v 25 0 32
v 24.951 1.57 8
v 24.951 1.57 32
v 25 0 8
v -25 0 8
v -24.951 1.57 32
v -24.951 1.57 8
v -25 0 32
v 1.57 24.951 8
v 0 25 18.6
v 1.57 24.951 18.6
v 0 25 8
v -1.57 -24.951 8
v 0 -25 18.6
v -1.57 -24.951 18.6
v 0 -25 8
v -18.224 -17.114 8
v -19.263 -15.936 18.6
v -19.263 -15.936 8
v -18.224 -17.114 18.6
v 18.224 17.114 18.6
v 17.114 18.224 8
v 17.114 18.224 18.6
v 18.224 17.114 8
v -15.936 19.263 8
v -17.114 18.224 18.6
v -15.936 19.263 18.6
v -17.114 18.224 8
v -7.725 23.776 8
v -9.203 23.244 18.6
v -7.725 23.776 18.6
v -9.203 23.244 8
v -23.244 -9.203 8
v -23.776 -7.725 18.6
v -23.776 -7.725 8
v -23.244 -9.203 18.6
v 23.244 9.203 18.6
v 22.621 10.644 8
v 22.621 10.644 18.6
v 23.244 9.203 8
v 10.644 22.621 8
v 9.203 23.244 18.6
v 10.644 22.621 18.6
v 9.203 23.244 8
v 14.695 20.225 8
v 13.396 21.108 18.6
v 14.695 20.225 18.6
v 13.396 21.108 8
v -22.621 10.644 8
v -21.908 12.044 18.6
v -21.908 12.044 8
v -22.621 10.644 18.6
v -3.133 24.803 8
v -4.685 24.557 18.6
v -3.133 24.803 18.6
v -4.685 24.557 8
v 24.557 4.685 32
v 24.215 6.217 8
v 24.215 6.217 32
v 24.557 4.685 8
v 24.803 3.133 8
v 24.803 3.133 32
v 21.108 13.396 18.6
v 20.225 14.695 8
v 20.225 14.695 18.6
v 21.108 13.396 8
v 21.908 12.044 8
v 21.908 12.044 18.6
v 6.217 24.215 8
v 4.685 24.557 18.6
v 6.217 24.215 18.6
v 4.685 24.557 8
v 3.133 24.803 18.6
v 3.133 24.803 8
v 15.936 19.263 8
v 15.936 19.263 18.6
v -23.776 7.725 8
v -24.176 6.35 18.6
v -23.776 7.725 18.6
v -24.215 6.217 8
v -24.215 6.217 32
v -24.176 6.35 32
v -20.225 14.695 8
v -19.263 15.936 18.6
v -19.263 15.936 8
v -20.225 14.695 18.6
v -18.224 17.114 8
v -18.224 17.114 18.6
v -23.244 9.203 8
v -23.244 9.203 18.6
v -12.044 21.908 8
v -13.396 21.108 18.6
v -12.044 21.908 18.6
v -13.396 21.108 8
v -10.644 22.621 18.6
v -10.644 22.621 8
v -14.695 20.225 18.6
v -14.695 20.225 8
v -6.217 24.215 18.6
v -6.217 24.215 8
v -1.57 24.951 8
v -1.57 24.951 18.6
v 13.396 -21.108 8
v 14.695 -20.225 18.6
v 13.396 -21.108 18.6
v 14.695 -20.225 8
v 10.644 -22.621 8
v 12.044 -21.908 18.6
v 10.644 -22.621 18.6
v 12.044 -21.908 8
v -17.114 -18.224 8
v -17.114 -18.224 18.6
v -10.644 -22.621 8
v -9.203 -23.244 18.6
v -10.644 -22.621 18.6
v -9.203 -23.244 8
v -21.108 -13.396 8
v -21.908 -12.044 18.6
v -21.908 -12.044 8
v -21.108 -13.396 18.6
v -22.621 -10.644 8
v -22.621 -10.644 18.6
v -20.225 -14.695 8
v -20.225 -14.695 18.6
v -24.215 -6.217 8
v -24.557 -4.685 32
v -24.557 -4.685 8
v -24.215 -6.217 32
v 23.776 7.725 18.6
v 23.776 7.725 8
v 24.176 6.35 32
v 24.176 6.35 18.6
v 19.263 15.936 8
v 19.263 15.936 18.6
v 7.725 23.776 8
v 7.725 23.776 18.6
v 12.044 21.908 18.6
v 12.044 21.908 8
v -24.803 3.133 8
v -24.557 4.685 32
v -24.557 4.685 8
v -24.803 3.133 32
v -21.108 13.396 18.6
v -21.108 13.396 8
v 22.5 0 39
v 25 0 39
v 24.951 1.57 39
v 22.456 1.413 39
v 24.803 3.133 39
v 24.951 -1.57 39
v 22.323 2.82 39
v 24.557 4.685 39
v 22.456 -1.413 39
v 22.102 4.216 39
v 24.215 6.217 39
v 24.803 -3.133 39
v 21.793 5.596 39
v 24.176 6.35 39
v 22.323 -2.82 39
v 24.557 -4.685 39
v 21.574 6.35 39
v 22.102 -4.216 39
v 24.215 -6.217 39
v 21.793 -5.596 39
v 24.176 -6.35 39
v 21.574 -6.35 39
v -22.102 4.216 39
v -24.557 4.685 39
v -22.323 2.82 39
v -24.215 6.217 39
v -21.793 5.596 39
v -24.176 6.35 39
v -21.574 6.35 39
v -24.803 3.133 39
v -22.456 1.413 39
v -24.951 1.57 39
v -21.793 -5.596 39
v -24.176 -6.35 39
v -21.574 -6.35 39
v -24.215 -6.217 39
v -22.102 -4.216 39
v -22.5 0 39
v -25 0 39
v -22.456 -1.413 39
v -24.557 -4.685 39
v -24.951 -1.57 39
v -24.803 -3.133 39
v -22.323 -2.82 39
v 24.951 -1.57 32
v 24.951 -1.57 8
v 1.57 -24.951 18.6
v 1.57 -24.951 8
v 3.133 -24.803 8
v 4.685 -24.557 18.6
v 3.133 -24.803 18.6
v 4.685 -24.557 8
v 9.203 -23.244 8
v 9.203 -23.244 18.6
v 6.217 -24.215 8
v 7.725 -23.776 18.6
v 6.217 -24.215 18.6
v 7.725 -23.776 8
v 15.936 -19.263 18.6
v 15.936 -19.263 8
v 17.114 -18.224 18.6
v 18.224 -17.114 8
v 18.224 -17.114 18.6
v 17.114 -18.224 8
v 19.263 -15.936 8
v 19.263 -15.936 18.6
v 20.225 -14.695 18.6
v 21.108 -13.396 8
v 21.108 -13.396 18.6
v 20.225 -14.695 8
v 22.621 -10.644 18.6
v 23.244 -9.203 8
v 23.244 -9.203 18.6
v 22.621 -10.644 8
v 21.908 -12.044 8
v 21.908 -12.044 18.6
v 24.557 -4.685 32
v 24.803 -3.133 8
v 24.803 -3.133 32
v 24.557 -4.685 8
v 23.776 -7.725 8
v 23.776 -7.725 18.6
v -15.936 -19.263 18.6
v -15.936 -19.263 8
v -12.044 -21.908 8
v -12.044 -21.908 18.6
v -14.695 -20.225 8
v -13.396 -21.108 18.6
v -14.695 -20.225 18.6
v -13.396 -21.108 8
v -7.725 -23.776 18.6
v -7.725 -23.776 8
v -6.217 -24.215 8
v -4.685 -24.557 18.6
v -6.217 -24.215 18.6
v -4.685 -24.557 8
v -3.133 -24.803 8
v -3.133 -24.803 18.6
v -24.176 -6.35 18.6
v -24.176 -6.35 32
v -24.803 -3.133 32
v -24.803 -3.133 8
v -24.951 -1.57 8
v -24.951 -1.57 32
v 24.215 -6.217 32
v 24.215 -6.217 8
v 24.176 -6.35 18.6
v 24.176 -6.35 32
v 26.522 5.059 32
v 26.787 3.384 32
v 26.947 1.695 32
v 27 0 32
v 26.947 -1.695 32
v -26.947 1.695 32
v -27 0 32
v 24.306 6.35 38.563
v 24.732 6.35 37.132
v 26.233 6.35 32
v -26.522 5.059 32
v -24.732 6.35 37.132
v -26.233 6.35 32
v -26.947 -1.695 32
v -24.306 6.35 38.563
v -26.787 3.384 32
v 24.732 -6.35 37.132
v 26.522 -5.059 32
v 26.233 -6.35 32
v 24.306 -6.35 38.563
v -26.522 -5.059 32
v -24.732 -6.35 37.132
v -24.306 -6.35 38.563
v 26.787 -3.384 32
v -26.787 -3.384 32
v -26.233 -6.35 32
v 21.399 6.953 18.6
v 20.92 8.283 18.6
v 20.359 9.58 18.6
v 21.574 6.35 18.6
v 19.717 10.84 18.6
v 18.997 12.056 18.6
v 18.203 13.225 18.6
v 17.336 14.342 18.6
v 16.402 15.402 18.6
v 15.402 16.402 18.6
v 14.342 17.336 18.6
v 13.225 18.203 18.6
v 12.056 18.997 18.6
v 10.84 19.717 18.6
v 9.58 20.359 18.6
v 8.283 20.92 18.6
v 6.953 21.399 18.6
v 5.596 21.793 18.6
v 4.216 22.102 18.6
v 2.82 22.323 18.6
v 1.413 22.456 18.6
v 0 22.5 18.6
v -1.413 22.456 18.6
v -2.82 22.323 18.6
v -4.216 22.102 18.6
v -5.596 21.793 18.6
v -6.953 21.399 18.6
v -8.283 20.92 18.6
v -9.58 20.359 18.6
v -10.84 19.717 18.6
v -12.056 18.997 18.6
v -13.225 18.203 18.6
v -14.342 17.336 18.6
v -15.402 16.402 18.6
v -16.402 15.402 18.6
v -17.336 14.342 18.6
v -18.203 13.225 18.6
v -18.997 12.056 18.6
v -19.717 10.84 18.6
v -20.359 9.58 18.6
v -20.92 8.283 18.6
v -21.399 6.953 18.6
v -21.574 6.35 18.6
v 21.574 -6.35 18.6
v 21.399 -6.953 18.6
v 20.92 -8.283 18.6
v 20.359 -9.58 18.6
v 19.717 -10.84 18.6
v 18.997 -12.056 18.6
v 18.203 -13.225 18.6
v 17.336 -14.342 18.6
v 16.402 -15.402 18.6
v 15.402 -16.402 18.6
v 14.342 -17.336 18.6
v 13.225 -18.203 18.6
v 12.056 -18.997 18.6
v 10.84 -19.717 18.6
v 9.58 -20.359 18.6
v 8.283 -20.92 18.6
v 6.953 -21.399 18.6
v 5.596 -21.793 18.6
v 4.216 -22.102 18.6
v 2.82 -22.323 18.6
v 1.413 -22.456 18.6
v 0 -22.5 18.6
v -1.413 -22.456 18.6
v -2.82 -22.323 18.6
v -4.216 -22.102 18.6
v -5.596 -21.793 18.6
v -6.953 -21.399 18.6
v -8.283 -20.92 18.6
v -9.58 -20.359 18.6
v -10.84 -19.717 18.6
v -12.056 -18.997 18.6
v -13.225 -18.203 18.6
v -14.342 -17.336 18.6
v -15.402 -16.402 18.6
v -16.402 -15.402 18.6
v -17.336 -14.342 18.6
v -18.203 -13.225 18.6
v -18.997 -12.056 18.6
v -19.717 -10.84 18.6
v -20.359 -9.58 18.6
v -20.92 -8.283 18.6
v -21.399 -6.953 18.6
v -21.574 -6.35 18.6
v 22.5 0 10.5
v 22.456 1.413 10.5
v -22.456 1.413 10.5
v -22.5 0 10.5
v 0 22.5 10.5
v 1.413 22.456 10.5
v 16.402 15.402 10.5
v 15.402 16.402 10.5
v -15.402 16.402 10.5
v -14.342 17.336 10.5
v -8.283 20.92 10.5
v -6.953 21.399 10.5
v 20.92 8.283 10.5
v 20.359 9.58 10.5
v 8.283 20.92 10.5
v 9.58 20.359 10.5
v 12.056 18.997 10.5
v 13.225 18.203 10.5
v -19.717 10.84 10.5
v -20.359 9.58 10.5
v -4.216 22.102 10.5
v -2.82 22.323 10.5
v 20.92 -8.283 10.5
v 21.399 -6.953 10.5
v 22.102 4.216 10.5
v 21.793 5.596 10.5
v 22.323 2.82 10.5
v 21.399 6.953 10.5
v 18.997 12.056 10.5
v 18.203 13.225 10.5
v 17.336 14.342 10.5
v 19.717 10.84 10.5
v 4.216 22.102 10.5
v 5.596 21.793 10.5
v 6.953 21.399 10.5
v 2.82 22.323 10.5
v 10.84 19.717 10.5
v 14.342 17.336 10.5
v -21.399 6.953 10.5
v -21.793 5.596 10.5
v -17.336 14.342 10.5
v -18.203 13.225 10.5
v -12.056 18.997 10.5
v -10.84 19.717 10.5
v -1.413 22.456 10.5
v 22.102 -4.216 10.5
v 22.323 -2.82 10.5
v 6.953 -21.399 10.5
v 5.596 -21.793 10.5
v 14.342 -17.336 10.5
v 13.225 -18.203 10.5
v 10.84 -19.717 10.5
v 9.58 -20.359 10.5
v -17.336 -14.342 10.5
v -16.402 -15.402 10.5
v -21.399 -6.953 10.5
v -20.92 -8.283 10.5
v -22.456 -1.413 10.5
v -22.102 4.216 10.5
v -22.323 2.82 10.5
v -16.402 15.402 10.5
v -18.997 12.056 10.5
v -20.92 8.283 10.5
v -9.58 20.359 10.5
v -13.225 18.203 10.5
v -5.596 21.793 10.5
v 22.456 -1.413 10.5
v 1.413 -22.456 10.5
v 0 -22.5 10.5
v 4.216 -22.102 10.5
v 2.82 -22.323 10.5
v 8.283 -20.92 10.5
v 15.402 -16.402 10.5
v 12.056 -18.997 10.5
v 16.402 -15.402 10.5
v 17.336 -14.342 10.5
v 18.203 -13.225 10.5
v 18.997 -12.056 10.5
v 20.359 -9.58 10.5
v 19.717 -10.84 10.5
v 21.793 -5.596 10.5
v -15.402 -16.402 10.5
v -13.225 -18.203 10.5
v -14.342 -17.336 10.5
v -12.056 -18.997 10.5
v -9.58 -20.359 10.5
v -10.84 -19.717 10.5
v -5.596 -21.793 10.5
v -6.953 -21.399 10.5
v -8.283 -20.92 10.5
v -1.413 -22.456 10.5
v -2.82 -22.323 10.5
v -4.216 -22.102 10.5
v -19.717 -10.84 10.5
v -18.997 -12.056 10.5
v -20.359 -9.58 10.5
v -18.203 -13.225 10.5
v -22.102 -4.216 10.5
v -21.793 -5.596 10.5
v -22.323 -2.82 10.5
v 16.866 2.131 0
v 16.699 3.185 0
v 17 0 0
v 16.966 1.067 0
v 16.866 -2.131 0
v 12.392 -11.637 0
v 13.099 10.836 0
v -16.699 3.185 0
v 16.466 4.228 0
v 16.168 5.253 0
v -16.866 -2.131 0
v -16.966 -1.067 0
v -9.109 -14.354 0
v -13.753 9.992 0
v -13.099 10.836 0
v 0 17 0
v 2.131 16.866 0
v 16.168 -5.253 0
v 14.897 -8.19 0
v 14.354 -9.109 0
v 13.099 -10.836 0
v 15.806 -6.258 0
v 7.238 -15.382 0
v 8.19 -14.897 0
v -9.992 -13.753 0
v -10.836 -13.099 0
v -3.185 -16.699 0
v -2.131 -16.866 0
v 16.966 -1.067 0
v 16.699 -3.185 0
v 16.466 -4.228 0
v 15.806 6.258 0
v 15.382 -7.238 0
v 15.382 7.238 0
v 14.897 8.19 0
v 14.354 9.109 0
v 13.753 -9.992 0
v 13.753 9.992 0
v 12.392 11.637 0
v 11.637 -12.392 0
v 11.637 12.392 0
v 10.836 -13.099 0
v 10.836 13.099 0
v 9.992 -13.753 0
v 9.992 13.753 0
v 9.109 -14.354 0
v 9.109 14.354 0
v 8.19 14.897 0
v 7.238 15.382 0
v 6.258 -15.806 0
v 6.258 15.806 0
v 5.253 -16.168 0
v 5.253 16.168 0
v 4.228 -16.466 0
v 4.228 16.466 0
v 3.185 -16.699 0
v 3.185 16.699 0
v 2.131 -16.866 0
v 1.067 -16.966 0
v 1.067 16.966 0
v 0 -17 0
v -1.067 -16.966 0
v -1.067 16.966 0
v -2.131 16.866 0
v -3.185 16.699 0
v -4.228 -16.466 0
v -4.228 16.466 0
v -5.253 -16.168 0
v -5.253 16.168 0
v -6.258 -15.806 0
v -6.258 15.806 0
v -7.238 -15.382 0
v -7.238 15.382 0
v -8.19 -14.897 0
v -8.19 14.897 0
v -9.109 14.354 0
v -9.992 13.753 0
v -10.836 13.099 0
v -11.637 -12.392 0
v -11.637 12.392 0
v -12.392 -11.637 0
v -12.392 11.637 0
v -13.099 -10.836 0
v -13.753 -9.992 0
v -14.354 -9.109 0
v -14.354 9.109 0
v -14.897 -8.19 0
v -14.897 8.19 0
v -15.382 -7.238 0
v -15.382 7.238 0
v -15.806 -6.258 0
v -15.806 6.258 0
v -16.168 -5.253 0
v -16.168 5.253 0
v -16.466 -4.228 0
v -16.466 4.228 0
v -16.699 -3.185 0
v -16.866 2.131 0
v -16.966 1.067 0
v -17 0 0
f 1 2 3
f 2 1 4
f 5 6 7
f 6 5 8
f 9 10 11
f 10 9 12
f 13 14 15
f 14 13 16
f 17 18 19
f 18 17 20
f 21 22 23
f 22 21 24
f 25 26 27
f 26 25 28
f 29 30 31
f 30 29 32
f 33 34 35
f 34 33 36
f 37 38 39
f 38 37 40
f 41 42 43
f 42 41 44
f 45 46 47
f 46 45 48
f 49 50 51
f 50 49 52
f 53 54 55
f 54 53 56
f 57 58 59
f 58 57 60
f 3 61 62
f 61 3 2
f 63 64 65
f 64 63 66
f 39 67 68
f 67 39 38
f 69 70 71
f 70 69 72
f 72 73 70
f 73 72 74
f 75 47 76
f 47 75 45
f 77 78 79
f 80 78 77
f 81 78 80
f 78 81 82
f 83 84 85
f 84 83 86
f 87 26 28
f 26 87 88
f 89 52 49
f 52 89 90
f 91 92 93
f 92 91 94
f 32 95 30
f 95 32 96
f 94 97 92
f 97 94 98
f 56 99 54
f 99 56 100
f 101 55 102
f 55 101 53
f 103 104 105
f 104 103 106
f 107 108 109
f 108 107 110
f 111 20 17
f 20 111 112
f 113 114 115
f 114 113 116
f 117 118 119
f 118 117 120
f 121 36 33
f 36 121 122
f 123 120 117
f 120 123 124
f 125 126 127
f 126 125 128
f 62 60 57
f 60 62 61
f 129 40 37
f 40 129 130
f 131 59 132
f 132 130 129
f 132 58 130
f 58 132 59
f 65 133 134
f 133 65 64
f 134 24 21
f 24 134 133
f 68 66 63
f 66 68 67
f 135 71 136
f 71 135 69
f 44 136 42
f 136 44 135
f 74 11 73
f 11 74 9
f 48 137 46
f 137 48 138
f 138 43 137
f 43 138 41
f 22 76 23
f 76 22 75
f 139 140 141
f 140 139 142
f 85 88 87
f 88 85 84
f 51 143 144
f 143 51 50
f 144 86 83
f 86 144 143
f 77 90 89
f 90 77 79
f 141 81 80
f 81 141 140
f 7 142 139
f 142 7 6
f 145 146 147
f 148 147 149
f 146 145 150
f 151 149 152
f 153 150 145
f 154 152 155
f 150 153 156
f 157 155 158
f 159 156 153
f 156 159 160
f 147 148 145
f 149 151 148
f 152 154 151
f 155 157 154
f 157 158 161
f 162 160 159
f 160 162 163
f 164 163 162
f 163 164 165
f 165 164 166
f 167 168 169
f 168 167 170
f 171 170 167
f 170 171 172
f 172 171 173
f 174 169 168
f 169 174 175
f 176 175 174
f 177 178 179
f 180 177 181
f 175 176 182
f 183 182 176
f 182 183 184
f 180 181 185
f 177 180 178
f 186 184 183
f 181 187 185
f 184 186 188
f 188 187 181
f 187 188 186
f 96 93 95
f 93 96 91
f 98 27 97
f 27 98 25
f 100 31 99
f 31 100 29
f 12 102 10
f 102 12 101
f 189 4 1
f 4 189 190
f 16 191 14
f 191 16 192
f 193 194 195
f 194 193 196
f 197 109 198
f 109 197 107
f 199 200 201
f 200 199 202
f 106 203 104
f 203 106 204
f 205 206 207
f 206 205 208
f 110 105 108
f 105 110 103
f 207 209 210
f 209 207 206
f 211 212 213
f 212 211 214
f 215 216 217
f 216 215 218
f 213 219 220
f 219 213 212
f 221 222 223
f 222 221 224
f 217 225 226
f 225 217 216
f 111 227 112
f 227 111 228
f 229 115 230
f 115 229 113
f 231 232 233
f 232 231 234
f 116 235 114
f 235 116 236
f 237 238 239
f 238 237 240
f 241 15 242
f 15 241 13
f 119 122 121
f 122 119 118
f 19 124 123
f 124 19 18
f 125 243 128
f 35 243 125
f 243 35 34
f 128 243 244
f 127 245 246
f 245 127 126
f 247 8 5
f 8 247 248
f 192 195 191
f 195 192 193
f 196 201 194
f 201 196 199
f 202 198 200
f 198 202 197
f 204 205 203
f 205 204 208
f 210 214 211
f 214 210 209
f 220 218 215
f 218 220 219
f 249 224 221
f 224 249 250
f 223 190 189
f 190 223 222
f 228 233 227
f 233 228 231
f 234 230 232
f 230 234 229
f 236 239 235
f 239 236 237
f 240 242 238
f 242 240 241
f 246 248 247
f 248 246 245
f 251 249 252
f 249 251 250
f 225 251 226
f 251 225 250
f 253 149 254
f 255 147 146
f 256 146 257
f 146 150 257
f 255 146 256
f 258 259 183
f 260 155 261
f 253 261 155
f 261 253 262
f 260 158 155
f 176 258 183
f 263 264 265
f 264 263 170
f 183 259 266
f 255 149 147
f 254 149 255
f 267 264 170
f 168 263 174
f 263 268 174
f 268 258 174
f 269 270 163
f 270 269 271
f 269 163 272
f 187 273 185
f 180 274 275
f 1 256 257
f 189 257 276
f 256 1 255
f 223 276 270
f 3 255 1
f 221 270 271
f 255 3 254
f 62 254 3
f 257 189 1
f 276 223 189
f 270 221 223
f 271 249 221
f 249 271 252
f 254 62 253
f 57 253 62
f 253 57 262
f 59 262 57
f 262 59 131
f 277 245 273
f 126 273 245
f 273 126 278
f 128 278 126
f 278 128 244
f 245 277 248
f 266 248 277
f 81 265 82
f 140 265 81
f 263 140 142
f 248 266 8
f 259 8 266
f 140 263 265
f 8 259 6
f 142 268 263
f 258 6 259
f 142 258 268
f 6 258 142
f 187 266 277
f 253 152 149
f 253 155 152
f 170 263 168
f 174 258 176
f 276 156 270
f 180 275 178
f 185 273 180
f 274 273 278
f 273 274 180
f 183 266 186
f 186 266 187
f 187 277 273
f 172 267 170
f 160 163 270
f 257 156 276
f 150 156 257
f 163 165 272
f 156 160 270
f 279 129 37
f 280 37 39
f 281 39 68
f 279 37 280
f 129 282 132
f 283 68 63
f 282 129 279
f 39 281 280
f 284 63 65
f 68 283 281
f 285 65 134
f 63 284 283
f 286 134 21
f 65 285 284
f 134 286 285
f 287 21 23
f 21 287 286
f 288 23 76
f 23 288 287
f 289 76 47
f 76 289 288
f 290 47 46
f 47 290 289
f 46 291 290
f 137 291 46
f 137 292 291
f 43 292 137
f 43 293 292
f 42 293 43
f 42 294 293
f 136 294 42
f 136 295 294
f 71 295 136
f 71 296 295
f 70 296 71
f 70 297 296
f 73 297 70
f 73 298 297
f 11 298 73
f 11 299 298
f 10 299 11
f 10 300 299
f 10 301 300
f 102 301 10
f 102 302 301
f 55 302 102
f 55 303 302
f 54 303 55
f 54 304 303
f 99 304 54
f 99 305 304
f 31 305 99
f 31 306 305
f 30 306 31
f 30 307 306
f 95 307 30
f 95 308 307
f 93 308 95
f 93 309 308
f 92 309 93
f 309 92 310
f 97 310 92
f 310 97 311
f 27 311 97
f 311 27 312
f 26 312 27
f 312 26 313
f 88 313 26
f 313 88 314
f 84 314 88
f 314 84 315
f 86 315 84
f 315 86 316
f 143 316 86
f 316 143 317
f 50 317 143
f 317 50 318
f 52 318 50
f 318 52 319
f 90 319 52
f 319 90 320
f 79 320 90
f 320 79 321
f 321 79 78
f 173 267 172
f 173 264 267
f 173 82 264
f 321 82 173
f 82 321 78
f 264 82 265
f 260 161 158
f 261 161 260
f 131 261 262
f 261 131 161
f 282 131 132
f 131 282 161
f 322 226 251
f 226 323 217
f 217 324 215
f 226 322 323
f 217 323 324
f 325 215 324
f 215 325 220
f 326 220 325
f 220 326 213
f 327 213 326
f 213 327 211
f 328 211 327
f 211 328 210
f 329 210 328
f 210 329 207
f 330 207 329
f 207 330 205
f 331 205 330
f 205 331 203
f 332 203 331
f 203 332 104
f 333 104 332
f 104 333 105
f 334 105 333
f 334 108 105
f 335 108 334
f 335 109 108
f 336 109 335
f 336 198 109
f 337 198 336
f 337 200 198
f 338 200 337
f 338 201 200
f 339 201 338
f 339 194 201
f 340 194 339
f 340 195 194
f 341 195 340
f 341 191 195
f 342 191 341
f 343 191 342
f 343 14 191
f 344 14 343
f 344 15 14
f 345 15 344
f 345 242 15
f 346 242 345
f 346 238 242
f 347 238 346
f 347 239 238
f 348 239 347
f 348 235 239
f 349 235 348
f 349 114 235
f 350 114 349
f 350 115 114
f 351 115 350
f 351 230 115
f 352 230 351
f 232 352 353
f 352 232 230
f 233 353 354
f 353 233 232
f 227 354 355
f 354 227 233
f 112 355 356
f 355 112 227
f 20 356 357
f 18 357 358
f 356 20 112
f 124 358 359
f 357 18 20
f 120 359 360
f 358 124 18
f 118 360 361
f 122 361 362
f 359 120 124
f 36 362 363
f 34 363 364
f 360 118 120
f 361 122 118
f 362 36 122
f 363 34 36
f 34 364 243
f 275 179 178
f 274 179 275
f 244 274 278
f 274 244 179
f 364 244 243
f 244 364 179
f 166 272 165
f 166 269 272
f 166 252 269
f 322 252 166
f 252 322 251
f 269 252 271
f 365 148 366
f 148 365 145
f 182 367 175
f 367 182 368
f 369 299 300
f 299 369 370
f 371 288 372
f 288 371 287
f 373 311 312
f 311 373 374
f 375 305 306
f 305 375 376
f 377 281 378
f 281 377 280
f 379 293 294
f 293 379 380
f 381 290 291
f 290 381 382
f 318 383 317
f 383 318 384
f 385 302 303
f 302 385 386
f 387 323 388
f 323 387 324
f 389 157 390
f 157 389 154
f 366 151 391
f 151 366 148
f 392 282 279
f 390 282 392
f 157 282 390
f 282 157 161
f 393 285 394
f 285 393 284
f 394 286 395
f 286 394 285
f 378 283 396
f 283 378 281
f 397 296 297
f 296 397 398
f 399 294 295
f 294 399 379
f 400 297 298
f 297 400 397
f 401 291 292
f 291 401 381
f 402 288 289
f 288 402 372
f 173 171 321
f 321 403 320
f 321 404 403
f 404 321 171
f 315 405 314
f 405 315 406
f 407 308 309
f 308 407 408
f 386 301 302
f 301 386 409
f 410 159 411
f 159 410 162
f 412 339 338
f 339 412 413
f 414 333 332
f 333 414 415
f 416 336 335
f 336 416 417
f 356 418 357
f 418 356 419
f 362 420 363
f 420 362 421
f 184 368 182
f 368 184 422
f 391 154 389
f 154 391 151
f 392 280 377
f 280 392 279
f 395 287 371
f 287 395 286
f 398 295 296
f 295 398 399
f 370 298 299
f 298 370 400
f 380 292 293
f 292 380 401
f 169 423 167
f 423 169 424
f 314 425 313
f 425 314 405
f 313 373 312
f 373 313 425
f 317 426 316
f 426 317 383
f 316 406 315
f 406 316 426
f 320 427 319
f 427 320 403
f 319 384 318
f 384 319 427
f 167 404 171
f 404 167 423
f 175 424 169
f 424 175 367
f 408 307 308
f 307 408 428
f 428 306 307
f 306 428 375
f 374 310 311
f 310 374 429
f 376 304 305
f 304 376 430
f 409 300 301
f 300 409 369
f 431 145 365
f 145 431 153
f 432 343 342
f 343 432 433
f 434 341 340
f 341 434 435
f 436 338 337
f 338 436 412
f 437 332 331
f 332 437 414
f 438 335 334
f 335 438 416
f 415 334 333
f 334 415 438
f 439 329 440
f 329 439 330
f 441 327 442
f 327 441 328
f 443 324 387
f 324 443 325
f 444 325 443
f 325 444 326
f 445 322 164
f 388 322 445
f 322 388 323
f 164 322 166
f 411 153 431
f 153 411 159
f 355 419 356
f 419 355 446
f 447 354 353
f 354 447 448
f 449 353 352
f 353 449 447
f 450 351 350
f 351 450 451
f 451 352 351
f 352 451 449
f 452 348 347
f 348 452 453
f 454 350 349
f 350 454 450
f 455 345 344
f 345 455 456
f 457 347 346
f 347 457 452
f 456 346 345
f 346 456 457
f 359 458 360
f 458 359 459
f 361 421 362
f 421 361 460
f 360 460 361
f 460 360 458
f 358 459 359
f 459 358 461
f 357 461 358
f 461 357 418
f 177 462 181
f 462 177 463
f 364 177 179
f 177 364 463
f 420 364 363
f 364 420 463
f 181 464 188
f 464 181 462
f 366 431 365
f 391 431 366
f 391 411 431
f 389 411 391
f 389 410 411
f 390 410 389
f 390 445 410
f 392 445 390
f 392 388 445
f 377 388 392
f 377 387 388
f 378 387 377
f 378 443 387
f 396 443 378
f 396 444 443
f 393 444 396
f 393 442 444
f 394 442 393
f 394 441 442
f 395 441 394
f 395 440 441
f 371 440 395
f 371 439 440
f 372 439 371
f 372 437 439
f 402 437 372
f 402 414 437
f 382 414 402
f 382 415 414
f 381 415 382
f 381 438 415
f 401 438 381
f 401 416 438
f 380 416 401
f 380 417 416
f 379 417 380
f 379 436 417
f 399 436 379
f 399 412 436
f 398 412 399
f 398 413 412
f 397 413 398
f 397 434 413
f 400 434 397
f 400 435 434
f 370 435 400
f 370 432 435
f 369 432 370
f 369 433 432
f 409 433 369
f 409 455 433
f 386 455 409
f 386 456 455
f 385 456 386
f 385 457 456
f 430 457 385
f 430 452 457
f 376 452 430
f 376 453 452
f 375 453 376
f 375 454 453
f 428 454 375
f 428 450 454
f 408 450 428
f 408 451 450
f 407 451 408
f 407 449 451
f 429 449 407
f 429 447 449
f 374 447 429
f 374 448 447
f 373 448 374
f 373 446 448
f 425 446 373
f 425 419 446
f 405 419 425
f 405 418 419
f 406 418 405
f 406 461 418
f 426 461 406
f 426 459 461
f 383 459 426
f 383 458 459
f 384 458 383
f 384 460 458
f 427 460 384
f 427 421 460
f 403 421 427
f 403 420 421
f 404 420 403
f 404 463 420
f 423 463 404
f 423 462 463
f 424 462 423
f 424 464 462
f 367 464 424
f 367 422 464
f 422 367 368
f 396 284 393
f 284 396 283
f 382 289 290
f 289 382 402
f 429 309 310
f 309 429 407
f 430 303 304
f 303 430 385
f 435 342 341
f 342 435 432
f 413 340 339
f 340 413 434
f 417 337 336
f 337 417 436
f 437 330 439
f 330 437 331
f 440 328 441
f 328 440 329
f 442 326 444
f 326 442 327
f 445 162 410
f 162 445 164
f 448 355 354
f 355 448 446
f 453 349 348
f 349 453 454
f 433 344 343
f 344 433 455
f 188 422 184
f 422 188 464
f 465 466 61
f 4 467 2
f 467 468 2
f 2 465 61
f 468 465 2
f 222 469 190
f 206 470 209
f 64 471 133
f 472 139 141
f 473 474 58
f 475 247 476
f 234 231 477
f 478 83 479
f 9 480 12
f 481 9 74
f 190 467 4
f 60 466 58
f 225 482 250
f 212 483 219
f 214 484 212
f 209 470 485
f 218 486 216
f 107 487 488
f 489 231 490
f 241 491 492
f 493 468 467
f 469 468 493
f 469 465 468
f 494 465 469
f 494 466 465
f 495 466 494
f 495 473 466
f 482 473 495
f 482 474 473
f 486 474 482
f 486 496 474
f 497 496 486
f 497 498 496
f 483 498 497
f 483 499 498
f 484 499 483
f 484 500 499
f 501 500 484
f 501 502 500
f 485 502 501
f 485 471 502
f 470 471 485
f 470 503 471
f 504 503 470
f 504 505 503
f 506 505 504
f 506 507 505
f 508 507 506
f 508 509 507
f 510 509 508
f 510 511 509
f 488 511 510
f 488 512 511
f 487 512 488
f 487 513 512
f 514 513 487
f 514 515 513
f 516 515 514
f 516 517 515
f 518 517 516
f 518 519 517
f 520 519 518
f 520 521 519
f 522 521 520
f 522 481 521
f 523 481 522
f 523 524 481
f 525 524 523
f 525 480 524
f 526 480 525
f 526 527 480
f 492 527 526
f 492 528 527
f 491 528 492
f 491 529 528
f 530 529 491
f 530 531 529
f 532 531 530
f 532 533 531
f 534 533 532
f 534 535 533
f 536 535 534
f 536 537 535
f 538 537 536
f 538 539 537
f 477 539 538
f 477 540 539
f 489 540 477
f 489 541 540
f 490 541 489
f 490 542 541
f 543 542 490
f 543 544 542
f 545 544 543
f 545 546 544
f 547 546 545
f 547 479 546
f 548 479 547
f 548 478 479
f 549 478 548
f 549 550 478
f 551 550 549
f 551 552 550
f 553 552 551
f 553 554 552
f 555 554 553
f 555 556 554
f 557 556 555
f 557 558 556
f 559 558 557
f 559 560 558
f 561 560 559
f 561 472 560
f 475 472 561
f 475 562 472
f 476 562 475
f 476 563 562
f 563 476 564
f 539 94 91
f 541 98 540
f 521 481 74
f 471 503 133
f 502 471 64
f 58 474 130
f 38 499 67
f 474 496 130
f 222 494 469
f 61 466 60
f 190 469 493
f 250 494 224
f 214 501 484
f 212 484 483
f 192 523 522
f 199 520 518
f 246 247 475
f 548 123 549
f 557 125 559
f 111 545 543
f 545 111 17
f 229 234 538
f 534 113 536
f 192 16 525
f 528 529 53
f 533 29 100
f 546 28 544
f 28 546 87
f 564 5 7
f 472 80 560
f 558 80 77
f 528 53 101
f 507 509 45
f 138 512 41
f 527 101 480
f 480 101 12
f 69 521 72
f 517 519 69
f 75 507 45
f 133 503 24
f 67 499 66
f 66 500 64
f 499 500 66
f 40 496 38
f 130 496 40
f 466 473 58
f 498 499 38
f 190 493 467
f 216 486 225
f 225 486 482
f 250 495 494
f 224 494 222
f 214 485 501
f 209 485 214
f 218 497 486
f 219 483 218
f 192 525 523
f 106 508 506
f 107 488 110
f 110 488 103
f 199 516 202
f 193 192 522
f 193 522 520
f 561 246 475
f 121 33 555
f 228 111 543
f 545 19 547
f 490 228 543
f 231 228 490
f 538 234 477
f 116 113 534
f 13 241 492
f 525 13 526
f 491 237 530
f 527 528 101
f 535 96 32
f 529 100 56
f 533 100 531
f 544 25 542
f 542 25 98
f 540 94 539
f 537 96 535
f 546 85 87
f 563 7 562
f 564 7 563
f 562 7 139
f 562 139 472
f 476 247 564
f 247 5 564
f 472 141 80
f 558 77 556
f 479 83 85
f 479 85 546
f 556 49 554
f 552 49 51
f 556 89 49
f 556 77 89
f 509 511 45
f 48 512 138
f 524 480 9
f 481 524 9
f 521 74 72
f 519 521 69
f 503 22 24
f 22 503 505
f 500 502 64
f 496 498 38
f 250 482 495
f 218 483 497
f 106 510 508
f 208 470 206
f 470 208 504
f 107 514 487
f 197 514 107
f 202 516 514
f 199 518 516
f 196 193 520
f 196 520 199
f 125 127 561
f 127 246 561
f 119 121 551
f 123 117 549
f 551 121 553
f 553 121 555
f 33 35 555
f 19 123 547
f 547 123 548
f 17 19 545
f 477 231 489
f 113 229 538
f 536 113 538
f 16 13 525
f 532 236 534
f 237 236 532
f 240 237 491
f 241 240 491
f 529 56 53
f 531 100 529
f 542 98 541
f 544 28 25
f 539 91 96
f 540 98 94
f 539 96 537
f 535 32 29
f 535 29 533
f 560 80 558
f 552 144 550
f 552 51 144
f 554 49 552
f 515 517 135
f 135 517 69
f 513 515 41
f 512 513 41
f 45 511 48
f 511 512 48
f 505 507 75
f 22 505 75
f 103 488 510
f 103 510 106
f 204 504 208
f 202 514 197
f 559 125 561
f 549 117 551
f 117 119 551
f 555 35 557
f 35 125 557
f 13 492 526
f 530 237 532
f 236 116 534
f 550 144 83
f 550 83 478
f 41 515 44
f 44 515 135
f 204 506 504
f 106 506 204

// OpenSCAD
module copy_x() {
    children();
    mirror([0,1,0])
    children();
}

$fn = 100;

d1 = 34;
d2 = 50;
d2in = 45;
d3 = 54;
h1 = 8;
h2 = 10.6;
h23 = 31;

w3 = 12.7;

linear_extrude(height = h1, scale = d2/d1)
circle(d = d1);

difference() {
    union() {
        translate([0, 0, 8])
        cylinder(d = d2, h = h23);
        
        translate([0, 0, h1 + h23])
        mirror([0, 0, 1])
        linear_extrude(height = 7, scale = d3/d2)
        circle(d = d2);
    }
    
    copy_x()
    translate([-50, w3/2, h1+h2])
    cube([100, 100, 100]);
    
    translate([0, 0, h1 + 2.5])
    cylinder(d = d2in, h = 100);
}
